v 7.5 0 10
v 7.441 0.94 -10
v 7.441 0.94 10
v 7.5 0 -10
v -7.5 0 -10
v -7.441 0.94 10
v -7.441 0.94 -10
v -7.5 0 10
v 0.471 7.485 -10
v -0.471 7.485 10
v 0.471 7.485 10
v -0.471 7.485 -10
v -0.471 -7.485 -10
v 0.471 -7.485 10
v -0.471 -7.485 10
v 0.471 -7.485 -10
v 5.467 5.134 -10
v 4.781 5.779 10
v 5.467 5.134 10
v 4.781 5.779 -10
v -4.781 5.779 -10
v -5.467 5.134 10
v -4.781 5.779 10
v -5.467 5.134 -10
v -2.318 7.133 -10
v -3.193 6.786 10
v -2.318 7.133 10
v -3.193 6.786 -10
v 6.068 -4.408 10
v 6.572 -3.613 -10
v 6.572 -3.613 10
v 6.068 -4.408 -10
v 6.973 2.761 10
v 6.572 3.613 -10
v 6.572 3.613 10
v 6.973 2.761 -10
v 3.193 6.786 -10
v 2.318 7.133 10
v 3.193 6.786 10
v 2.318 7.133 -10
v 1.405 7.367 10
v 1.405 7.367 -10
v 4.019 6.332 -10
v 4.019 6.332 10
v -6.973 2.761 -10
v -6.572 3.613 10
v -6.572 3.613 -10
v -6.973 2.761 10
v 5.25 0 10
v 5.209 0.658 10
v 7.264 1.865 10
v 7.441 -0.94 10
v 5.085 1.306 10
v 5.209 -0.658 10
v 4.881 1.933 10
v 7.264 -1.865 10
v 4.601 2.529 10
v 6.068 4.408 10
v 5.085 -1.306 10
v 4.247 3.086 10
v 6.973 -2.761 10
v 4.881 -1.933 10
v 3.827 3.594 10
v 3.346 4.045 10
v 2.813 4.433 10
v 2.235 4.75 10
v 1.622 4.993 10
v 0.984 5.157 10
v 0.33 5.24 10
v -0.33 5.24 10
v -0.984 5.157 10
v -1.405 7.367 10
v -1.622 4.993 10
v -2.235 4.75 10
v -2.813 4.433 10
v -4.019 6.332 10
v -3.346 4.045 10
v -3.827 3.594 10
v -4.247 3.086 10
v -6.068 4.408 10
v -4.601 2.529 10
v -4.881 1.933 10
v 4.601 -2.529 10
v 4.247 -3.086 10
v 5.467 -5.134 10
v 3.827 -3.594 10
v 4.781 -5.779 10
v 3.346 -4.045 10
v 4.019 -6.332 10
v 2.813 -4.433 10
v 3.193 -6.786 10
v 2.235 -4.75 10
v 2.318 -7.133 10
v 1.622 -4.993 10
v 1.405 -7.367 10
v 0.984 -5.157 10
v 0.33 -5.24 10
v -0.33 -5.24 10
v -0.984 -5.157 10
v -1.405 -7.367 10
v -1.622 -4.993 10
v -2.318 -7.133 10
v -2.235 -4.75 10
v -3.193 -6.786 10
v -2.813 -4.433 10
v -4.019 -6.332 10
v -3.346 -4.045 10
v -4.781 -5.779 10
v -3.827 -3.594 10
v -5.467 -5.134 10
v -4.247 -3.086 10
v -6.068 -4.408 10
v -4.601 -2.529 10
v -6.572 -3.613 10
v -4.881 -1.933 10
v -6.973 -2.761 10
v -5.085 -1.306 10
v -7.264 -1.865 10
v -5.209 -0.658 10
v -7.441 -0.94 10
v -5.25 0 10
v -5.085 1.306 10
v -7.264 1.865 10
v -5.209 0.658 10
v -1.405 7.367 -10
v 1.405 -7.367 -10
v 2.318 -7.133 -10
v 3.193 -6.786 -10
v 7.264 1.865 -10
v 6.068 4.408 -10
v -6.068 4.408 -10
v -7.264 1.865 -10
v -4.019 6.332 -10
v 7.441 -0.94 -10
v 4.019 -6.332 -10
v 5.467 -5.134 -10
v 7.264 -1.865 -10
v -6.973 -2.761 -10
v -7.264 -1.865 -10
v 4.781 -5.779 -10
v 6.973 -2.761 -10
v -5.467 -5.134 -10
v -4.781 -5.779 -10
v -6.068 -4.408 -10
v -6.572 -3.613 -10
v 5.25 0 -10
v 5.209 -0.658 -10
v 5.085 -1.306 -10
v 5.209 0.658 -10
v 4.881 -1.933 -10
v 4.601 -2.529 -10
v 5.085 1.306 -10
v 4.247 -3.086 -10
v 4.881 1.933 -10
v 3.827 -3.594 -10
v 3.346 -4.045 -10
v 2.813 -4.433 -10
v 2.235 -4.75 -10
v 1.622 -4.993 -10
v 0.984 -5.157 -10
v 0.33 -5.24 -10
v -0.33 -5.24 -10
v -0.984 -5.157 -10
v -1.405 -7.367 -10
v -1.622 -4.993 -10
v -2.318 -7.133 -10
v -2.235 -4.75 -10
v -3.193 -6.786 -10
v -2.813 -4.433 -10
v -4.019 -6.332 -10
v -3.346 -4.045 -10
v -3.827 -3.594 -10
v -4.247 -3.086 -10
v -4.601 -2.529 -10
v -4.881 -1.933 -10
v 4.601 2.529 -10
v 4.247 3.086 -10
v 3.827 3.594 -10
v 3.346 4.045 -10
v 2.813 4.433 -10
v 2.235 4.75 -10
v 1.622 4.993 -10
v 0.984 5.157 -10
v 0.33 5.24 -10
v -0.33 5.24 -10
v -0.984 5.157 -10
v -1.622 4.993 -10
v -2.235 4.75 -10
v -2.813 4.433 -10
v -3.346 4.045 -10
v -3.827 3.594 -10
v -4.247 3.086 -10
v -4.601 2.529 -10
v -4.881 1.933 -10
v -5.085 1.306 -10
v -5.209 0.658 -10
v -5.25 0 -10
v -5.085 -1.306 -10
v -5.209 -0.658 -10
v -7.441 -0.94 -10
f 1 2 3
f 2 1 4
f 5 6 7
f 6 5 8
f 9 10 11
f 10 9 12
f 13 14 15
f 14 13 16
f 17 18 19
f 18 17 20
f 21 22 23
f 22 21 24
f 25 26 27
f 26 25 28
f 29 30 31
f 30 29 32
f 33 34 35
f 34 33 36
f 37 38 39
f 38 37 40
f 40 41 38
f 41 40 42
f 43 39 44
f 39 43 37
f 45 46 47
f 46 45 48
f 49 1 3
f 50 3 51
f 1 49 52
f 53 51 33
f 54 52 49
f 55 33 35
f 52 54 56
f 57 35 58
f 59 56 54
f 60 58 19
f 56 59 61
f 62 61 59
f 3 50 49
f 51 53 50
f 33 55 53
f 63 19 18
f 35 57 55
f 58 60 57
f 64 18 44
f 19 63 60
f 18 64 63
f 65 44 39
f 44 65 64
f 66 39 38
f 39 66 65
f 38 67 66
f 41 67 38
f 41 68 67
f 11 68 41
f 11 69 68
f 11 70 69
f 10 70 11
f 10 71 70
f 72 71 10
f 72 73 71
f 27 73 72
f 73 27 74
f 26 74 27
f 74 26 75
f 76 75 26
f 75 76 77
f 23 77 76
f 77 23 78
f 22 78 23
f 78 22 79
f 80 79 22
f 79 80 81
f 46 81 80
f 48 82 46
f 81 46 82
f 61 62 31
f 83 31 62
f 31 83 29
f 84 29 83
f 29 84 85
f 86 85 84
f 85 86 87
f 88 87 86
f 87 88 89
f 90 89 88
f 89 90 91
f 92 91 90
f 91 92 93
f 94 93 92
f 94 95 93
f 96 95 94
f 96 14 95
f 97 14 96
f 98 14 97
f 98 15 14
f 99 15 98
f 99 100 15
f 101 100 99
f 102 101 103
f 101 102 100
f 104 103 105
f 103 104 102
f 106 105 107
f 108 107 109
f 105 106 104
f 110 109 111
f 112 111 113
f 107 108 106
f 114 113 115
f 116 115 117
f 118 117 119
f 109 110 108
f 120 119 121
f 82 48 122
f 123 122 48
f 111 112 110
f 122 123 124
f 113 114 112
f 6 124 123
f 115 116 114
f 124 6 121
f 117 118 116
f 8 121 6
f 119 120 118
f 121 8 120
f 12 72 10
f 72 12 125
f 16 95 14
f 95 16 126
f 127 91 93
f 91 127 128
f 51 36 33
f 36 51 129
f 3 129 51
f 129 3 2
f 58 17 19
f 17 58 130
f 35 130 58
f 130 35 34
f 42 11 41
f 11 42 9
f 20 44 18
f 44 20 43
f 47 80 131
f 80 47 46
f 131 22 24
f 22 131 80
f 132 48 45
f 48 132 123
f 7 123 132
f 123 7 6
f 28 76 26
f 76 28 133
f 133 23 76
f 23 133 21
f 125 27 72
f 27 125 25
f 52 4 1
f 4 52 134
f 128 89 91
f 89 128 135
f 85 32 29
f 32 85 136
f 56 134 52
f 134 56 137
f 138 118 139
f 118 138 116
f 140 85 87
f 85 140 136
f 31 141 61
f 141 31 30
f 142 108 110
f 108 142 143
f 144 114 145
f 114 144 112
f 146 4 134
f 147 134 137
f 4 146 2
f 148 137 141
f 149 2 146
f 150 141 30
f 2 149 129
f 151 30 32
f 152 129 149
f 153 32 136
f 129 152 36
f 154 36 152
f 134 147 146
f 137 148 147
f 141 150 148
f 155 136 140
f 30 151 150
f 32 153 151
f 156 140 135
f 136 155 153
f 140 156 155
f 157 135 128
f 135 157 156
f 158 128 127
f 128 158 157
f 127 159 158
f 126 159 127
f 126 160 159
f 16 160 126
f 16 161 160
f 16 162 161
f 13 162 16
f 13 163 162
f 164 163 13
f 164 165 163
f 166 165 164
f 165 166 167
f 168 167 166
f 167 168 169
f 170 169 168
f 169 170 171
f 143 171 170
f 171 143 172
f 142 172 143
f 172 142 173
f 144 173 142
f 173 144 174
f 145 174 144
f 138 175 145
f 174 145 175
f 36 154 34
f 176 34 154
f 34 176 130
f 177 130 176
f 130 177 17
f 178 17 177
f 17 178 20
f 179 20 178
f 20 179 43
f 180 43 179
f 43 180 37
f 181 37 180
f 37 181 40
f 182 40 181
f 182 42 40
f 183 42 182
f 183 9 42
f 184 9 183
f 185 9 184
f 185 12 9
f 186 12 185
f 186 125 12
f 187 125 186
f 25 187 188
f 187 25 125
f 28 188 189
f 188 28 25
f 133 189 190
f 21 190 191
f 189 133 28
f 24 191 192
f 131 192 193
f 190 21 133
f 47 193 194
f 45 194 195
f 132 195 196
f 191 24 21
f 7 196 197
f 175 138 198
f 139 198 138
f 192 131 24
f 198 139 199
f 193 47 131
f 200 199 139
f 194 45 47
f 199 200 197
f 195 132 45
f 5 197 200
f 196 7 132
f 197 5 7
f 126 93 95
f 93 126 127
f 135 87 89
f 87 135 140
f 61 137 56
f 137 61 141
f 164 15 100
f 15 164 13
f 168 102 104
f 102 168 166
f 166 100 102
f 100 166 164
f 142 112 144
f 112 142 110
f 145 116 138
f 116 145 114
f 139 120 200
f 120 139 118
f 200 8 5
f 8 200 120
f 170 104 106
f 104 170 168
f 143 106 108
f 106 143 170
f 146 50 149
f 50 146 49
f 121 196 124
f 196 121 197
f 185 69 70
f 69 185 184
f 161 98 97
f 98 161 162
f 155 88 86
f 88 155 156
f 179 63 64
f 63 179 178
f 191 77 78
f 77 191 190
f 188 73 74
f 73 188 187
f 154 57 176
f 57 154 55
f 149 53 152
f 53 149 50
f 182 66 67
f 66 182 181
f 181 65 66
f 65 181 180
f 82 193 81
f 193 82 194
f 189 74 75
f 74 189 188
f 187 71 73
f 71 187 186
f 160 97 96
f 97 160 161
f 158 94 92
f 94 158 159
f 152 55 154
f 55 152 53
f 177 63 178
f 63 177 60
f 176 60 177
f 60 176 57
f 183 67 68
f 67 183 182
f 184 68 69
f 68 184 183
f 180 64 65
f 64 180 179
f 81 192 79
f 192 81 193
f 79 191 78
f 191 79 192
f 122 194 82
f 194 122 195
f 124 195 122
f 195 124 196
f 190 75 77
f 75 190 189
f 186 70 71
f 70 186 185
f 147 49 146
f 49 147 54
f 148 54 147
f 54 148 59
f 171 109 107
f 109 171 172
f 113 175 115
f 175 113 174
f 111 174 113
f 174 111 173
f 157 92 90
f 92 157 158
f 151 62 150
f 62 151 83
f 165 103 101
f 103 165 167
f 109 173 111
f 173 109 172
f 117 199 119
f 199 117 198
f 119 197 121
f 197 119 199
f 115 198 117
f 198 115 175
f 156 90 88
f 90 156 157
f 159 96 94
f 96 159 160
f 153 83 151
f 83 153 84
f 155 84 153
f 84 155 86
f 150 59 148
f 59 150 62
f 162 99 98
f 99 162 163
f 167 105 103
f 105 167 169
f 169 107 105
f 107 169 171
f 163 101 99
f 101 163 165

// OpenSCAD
$fn = 50;


difference() {
	union() {
		translate(v = [0, 0, -10.0000000000]) {
			cylinder(h = 20, r = 7.5000000000);
		}
	}
	union() {
		translate(v = [0, 0, -100.0000000000]) {
			cylinder(h = 200, r = 5.2500000000);
		}
	}
}
